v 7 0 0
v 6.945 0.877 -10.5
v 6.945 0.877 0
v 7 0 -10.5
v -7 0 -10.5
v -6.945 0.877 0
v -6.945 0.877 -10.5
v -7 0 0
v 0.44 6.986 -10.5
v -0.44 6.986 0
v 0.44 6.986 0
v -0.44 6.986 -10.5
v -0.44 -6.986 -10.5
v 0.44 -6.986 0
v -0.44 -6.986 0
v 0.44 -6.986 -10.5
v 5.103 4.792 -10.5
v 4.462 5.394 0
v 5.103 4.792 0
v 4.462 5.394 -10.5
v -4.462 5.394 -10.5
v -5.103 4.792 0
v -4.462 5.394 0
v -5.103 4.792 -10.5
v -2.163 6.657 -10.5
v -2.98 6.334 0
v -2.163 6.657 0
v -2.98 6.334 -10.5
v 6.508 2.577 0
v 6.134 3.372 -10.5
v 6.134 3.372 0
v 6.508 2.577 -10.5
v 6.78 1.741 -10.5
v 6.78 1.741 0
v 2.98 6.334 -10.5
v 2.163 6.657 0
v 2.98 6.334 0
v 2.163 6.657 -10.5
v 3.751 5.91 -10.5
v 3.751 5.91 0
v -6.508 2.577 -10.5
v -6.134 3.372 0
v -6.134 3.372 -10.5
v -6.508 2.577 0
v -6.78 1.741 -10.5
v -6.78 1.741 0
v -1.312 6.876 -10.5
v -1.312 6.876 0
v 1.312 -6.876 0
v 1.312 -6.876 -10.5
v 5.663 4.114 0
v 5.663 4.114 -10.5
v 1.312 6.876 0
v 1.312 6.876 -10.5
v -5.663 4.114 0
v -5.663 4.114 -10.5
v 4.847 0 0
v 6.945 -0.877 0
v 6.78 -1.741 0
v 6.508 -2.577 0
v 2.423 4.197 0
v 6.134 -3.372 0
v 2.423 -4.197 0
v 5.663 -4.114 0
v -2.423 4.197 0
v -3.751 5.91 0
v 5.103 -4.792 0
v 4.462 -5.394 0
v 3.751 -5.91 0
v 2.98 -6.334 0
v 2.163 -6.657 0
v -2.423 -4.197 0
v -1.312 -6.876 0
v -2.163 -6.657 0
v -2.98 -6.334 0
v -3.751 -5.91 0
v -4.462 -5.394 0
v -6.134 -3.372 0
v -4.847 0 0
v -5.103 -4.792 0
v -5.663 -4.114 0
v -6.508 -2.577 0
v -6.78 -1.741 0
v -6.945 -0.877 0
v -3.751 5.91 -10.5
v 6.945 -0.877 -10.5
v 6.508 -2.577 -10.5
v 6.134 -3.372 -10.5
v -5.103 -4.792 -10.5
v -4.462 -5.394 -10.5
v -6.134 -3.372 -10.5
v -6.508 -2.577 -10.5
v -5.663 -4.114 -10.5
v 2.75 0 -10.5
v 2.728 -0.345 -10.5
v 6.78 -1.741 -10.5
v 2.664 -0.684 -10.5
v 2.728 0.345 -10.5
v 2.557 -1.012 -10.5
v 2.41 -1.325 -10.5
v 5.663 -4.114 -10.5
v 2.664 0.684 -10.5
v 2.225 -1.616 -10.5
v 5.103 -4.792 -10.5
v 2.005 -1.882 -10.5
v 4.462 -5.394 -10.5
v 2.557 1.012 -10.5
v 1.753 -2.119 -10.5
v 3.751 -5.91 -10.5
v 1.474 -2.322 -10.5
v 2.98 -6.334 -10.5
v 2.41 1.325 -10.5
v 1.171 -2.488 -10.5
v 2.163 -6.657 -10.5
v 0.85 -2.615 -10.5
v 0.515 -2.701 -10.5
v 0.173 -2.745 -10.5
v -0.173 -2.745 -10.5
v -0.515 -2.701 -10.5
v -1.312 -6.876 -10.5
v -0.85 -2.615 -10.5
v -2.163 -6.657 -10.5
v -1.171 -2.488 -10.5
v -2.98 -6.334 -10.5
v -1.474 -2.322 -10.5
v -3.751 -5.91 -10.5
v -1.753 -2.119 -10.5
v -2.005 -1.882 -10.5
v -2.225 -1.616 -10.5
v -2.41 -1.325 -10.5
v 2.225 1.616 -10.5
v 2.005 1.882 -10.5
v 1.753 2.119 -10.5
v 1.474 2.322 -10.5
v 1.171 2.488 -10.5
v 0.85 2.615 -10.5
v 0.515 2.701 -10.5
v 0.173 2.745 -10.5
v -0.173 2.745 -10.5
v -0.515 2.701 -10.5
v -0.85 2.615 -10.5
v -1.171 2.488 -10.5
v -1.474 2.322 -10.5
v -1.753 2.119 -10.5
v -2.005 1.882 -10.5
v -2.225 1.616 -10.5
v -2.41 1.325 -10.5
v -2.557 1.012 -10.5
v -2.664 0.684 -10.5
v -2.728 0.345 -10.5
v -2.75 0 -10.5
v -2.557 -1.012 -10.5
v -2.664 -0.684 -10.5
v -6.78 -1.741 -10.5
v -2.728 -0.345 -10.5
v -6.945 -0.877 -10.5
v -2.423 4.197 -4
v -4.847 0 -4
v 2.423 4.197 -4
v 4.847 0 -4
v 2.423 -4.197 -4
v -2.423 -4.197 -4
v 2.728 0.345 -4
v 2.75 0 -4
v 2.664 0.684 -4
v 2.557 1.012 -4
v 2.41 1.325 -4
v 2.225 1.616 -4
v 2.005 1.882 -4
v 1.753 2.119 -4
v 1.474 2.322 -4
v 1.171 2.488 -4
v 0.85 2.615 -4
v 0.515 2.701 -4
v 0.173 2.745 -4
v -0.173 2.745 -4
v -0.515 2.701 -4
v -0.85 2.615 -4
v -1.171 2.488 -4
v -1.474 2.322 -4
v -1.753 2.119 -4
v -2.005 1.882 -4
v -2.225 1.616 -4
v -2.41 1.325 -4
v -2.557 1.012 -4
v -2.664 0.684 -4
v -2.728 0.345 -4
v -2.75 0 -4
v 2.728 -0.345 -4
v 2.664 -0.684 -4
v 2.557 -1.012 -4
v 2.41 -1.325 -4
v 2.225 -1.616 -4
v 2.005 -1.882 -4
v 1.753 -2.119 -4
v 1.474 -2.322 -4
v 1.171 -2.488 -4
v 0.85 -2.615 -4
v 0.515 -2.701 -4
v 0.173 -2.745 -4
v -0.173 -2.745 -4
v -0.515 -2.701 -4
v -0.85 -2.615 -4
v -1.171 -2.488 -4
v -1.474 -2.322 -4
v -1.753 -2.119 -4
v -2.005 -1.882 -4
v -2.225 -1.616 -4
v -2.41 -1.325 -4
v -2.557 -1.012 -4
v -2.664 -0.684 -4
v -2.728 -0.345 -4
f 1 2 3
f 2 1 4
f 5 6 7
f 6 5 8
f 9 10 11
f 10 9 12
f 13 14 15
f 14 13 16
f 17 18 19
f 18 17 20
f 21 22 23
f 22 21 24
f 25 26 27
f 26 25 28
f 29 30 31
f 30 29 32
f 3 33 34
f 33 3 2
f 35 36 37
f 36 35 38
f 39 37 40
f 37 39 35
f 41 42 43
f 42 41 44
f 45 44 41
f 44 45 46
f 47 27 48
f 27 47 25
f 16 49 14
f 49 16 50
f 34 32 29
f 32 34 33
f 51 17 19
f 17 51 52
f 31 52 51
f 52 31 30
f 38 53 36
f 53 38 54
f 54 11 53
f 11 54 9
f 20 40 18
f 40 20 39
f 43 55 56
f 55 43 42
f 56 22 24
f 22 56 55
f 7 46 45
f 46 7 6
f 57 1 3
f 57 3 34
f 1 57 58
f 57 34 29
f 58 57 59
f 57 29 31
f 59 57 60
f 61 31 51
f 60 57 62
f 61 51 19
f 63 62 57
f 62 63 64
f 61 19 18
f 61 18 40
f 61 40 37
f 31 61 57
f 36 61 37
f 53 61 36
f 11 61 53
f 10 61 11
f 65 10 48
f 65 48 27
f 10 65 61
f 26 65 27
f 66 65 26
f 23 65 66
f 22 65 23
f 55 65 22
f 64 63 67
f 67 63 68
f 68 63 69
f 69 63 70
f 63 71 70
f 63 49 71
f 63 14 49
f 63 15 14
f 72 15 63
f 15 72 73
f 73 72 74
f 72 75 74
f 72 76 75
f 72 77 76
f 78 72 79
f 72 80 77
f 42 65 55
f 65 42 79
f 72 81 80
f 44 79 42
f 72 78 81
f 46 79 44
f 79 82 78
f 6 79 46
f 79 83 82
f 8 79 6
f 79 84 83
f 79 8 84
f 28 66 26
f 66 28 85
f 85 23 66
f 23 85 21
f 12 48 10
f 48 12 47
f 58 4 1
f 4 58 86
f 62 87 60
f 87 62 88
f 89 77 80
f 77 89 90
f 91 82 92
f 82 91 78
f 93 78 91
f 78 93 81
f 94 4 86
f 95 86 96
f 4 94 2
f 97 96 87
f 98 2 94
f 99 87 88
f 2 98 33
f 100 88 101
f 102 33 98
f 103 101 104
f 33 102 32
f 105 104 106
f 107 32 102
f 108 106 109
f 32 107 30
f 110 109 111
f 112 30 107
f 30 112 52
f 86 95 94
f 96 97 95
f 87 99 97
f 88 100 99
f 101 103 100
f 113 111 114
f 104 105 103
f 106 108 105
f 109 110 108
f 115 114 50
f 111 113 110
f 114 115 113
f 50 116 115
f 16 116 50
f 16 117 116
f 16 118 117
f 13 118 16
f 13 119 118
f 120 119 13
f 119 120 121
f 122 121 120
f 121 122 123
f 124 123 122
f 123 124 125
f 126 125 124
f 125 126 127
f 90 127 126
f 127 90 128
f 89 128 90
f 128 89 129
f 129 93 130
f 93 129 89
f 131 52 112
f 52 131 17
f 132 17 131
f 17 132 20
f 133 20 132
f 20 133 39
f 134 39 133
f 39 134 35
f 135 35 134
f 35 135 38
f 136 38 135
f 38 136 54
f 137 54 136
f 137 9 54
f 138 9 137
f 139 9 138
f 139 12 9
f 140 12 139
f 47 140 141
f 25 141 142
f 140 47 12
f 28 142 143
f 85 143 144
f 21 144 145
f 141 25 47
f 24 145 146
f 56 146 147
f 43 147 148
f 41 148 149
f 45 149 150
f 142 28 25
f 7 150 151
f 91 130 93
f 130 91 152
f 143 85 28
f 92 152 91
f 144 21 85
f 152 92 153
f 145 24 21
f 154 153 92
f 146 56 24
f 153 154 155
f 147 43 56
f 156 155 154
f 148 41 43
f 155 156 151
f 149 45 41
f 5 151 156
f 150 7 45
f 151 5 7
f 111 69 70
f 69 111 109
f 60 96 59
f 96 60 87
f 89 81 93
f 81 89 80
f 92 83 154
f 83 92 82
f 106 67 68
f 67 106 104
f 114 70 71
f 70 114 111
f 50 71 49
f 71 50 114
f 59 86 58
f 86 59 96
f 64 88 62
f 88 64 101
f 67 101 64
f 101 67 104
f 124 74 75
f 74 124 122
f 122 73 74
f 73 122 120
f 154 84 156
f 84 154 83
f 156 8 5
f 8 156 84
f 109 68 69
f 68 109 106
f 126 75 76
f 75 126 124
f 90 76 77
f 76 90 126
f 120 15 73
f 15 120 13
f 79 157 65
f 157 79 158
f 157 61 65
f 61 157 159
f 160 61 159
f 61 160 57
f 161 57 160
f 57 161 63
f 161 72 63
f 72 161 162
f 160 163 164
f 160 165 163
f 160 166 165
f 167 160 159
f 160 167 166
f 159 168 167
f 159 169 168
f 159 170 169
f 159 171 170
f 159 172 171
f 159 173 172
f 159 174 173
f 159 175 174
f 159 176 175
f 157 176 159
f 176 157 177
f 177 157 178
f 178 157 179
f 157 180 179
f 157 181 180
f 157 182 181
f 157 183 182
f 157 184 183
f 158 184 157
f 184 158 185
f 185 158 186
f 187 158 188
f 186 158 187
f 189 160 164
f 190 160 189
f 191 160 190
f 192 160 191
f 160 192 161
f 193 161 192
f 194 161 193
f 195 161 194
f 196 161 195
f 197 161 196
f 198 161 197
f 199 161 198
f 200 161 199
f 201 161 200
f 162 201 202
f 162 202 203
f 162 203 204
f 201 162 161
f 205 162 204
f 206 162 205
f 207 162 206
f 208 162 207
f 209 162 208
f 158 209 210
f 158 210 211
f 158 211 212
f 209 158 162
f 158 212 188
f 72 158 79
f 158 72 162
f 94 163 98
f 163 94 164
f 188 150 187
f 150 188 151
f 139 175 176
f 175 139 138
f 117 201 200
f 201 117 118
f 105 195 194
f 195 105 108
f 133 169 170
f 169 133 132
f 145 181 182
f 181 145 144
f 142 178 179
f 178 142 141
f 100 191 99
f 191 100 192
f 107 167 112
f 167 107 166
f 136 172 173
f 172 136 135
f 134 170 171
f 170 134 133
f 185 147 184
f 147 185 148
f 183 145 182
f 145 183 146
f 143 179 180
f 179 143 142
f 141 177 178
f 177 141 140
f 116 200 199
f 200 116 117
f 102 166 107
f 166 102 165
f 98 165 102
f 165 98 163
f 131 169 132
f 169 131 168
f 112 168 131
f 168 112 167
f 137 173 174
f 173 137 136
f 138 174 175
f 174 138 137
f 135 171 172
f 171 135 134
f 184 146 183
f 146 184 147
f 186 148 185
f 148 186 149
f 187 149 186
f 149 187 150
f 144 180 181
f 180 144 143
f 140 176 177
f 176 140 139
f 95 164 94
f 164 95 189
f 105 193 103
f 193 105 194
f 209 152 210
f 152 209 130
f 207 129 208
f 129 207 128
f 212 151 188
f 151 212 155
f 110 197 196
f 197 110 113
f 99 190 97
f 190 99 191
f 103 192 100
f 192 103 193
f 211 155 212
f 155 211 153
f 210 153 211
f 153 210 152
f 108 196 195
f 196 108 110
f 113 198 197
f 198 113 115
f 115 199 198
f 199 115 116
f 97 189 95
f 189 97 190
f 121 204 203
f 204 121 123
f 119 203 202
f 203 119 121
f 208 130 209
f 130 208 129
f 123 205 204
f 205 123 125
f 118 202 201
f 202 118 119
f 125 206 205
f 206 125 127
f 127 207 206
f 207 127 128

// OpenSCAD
$fn = 50;


difference() {
	union() {
		translate(v = [0, 0, -10.5000000000]) {
			cylinder(h = 10.5000000000, r = 7.0000000000);
		}
		translate(v = [0, 0, -9.0000000000]) {
			cylinder(h = 9, r = 2.8750000000);
		}
	}
	union() {
		translate(v = [0, 0, 0]) {
			rotate(a = [0, 0, 0]) {
				difference() {
					union() {
						translate(v = [0, 0, -4]) {
							#linear_extrude(height = 4) {
								polygon(points = [[4.8468000000, 0.0000000000], [2.4234000000, 4.1974519271], [-2.4234000000, 4.1974519271], [-4.8468000000, 0.0000000000], [-2.4234000000, -4.1974519271], [2.4234000000, -4.1974519271]]);
							}
						}
					}
					union();
				}
			}
		}
		#translate(v = [0, 0, -100.0000000000]) {
			cylinder(h = 200, r = 2.7500000000);
		}
	}
}
